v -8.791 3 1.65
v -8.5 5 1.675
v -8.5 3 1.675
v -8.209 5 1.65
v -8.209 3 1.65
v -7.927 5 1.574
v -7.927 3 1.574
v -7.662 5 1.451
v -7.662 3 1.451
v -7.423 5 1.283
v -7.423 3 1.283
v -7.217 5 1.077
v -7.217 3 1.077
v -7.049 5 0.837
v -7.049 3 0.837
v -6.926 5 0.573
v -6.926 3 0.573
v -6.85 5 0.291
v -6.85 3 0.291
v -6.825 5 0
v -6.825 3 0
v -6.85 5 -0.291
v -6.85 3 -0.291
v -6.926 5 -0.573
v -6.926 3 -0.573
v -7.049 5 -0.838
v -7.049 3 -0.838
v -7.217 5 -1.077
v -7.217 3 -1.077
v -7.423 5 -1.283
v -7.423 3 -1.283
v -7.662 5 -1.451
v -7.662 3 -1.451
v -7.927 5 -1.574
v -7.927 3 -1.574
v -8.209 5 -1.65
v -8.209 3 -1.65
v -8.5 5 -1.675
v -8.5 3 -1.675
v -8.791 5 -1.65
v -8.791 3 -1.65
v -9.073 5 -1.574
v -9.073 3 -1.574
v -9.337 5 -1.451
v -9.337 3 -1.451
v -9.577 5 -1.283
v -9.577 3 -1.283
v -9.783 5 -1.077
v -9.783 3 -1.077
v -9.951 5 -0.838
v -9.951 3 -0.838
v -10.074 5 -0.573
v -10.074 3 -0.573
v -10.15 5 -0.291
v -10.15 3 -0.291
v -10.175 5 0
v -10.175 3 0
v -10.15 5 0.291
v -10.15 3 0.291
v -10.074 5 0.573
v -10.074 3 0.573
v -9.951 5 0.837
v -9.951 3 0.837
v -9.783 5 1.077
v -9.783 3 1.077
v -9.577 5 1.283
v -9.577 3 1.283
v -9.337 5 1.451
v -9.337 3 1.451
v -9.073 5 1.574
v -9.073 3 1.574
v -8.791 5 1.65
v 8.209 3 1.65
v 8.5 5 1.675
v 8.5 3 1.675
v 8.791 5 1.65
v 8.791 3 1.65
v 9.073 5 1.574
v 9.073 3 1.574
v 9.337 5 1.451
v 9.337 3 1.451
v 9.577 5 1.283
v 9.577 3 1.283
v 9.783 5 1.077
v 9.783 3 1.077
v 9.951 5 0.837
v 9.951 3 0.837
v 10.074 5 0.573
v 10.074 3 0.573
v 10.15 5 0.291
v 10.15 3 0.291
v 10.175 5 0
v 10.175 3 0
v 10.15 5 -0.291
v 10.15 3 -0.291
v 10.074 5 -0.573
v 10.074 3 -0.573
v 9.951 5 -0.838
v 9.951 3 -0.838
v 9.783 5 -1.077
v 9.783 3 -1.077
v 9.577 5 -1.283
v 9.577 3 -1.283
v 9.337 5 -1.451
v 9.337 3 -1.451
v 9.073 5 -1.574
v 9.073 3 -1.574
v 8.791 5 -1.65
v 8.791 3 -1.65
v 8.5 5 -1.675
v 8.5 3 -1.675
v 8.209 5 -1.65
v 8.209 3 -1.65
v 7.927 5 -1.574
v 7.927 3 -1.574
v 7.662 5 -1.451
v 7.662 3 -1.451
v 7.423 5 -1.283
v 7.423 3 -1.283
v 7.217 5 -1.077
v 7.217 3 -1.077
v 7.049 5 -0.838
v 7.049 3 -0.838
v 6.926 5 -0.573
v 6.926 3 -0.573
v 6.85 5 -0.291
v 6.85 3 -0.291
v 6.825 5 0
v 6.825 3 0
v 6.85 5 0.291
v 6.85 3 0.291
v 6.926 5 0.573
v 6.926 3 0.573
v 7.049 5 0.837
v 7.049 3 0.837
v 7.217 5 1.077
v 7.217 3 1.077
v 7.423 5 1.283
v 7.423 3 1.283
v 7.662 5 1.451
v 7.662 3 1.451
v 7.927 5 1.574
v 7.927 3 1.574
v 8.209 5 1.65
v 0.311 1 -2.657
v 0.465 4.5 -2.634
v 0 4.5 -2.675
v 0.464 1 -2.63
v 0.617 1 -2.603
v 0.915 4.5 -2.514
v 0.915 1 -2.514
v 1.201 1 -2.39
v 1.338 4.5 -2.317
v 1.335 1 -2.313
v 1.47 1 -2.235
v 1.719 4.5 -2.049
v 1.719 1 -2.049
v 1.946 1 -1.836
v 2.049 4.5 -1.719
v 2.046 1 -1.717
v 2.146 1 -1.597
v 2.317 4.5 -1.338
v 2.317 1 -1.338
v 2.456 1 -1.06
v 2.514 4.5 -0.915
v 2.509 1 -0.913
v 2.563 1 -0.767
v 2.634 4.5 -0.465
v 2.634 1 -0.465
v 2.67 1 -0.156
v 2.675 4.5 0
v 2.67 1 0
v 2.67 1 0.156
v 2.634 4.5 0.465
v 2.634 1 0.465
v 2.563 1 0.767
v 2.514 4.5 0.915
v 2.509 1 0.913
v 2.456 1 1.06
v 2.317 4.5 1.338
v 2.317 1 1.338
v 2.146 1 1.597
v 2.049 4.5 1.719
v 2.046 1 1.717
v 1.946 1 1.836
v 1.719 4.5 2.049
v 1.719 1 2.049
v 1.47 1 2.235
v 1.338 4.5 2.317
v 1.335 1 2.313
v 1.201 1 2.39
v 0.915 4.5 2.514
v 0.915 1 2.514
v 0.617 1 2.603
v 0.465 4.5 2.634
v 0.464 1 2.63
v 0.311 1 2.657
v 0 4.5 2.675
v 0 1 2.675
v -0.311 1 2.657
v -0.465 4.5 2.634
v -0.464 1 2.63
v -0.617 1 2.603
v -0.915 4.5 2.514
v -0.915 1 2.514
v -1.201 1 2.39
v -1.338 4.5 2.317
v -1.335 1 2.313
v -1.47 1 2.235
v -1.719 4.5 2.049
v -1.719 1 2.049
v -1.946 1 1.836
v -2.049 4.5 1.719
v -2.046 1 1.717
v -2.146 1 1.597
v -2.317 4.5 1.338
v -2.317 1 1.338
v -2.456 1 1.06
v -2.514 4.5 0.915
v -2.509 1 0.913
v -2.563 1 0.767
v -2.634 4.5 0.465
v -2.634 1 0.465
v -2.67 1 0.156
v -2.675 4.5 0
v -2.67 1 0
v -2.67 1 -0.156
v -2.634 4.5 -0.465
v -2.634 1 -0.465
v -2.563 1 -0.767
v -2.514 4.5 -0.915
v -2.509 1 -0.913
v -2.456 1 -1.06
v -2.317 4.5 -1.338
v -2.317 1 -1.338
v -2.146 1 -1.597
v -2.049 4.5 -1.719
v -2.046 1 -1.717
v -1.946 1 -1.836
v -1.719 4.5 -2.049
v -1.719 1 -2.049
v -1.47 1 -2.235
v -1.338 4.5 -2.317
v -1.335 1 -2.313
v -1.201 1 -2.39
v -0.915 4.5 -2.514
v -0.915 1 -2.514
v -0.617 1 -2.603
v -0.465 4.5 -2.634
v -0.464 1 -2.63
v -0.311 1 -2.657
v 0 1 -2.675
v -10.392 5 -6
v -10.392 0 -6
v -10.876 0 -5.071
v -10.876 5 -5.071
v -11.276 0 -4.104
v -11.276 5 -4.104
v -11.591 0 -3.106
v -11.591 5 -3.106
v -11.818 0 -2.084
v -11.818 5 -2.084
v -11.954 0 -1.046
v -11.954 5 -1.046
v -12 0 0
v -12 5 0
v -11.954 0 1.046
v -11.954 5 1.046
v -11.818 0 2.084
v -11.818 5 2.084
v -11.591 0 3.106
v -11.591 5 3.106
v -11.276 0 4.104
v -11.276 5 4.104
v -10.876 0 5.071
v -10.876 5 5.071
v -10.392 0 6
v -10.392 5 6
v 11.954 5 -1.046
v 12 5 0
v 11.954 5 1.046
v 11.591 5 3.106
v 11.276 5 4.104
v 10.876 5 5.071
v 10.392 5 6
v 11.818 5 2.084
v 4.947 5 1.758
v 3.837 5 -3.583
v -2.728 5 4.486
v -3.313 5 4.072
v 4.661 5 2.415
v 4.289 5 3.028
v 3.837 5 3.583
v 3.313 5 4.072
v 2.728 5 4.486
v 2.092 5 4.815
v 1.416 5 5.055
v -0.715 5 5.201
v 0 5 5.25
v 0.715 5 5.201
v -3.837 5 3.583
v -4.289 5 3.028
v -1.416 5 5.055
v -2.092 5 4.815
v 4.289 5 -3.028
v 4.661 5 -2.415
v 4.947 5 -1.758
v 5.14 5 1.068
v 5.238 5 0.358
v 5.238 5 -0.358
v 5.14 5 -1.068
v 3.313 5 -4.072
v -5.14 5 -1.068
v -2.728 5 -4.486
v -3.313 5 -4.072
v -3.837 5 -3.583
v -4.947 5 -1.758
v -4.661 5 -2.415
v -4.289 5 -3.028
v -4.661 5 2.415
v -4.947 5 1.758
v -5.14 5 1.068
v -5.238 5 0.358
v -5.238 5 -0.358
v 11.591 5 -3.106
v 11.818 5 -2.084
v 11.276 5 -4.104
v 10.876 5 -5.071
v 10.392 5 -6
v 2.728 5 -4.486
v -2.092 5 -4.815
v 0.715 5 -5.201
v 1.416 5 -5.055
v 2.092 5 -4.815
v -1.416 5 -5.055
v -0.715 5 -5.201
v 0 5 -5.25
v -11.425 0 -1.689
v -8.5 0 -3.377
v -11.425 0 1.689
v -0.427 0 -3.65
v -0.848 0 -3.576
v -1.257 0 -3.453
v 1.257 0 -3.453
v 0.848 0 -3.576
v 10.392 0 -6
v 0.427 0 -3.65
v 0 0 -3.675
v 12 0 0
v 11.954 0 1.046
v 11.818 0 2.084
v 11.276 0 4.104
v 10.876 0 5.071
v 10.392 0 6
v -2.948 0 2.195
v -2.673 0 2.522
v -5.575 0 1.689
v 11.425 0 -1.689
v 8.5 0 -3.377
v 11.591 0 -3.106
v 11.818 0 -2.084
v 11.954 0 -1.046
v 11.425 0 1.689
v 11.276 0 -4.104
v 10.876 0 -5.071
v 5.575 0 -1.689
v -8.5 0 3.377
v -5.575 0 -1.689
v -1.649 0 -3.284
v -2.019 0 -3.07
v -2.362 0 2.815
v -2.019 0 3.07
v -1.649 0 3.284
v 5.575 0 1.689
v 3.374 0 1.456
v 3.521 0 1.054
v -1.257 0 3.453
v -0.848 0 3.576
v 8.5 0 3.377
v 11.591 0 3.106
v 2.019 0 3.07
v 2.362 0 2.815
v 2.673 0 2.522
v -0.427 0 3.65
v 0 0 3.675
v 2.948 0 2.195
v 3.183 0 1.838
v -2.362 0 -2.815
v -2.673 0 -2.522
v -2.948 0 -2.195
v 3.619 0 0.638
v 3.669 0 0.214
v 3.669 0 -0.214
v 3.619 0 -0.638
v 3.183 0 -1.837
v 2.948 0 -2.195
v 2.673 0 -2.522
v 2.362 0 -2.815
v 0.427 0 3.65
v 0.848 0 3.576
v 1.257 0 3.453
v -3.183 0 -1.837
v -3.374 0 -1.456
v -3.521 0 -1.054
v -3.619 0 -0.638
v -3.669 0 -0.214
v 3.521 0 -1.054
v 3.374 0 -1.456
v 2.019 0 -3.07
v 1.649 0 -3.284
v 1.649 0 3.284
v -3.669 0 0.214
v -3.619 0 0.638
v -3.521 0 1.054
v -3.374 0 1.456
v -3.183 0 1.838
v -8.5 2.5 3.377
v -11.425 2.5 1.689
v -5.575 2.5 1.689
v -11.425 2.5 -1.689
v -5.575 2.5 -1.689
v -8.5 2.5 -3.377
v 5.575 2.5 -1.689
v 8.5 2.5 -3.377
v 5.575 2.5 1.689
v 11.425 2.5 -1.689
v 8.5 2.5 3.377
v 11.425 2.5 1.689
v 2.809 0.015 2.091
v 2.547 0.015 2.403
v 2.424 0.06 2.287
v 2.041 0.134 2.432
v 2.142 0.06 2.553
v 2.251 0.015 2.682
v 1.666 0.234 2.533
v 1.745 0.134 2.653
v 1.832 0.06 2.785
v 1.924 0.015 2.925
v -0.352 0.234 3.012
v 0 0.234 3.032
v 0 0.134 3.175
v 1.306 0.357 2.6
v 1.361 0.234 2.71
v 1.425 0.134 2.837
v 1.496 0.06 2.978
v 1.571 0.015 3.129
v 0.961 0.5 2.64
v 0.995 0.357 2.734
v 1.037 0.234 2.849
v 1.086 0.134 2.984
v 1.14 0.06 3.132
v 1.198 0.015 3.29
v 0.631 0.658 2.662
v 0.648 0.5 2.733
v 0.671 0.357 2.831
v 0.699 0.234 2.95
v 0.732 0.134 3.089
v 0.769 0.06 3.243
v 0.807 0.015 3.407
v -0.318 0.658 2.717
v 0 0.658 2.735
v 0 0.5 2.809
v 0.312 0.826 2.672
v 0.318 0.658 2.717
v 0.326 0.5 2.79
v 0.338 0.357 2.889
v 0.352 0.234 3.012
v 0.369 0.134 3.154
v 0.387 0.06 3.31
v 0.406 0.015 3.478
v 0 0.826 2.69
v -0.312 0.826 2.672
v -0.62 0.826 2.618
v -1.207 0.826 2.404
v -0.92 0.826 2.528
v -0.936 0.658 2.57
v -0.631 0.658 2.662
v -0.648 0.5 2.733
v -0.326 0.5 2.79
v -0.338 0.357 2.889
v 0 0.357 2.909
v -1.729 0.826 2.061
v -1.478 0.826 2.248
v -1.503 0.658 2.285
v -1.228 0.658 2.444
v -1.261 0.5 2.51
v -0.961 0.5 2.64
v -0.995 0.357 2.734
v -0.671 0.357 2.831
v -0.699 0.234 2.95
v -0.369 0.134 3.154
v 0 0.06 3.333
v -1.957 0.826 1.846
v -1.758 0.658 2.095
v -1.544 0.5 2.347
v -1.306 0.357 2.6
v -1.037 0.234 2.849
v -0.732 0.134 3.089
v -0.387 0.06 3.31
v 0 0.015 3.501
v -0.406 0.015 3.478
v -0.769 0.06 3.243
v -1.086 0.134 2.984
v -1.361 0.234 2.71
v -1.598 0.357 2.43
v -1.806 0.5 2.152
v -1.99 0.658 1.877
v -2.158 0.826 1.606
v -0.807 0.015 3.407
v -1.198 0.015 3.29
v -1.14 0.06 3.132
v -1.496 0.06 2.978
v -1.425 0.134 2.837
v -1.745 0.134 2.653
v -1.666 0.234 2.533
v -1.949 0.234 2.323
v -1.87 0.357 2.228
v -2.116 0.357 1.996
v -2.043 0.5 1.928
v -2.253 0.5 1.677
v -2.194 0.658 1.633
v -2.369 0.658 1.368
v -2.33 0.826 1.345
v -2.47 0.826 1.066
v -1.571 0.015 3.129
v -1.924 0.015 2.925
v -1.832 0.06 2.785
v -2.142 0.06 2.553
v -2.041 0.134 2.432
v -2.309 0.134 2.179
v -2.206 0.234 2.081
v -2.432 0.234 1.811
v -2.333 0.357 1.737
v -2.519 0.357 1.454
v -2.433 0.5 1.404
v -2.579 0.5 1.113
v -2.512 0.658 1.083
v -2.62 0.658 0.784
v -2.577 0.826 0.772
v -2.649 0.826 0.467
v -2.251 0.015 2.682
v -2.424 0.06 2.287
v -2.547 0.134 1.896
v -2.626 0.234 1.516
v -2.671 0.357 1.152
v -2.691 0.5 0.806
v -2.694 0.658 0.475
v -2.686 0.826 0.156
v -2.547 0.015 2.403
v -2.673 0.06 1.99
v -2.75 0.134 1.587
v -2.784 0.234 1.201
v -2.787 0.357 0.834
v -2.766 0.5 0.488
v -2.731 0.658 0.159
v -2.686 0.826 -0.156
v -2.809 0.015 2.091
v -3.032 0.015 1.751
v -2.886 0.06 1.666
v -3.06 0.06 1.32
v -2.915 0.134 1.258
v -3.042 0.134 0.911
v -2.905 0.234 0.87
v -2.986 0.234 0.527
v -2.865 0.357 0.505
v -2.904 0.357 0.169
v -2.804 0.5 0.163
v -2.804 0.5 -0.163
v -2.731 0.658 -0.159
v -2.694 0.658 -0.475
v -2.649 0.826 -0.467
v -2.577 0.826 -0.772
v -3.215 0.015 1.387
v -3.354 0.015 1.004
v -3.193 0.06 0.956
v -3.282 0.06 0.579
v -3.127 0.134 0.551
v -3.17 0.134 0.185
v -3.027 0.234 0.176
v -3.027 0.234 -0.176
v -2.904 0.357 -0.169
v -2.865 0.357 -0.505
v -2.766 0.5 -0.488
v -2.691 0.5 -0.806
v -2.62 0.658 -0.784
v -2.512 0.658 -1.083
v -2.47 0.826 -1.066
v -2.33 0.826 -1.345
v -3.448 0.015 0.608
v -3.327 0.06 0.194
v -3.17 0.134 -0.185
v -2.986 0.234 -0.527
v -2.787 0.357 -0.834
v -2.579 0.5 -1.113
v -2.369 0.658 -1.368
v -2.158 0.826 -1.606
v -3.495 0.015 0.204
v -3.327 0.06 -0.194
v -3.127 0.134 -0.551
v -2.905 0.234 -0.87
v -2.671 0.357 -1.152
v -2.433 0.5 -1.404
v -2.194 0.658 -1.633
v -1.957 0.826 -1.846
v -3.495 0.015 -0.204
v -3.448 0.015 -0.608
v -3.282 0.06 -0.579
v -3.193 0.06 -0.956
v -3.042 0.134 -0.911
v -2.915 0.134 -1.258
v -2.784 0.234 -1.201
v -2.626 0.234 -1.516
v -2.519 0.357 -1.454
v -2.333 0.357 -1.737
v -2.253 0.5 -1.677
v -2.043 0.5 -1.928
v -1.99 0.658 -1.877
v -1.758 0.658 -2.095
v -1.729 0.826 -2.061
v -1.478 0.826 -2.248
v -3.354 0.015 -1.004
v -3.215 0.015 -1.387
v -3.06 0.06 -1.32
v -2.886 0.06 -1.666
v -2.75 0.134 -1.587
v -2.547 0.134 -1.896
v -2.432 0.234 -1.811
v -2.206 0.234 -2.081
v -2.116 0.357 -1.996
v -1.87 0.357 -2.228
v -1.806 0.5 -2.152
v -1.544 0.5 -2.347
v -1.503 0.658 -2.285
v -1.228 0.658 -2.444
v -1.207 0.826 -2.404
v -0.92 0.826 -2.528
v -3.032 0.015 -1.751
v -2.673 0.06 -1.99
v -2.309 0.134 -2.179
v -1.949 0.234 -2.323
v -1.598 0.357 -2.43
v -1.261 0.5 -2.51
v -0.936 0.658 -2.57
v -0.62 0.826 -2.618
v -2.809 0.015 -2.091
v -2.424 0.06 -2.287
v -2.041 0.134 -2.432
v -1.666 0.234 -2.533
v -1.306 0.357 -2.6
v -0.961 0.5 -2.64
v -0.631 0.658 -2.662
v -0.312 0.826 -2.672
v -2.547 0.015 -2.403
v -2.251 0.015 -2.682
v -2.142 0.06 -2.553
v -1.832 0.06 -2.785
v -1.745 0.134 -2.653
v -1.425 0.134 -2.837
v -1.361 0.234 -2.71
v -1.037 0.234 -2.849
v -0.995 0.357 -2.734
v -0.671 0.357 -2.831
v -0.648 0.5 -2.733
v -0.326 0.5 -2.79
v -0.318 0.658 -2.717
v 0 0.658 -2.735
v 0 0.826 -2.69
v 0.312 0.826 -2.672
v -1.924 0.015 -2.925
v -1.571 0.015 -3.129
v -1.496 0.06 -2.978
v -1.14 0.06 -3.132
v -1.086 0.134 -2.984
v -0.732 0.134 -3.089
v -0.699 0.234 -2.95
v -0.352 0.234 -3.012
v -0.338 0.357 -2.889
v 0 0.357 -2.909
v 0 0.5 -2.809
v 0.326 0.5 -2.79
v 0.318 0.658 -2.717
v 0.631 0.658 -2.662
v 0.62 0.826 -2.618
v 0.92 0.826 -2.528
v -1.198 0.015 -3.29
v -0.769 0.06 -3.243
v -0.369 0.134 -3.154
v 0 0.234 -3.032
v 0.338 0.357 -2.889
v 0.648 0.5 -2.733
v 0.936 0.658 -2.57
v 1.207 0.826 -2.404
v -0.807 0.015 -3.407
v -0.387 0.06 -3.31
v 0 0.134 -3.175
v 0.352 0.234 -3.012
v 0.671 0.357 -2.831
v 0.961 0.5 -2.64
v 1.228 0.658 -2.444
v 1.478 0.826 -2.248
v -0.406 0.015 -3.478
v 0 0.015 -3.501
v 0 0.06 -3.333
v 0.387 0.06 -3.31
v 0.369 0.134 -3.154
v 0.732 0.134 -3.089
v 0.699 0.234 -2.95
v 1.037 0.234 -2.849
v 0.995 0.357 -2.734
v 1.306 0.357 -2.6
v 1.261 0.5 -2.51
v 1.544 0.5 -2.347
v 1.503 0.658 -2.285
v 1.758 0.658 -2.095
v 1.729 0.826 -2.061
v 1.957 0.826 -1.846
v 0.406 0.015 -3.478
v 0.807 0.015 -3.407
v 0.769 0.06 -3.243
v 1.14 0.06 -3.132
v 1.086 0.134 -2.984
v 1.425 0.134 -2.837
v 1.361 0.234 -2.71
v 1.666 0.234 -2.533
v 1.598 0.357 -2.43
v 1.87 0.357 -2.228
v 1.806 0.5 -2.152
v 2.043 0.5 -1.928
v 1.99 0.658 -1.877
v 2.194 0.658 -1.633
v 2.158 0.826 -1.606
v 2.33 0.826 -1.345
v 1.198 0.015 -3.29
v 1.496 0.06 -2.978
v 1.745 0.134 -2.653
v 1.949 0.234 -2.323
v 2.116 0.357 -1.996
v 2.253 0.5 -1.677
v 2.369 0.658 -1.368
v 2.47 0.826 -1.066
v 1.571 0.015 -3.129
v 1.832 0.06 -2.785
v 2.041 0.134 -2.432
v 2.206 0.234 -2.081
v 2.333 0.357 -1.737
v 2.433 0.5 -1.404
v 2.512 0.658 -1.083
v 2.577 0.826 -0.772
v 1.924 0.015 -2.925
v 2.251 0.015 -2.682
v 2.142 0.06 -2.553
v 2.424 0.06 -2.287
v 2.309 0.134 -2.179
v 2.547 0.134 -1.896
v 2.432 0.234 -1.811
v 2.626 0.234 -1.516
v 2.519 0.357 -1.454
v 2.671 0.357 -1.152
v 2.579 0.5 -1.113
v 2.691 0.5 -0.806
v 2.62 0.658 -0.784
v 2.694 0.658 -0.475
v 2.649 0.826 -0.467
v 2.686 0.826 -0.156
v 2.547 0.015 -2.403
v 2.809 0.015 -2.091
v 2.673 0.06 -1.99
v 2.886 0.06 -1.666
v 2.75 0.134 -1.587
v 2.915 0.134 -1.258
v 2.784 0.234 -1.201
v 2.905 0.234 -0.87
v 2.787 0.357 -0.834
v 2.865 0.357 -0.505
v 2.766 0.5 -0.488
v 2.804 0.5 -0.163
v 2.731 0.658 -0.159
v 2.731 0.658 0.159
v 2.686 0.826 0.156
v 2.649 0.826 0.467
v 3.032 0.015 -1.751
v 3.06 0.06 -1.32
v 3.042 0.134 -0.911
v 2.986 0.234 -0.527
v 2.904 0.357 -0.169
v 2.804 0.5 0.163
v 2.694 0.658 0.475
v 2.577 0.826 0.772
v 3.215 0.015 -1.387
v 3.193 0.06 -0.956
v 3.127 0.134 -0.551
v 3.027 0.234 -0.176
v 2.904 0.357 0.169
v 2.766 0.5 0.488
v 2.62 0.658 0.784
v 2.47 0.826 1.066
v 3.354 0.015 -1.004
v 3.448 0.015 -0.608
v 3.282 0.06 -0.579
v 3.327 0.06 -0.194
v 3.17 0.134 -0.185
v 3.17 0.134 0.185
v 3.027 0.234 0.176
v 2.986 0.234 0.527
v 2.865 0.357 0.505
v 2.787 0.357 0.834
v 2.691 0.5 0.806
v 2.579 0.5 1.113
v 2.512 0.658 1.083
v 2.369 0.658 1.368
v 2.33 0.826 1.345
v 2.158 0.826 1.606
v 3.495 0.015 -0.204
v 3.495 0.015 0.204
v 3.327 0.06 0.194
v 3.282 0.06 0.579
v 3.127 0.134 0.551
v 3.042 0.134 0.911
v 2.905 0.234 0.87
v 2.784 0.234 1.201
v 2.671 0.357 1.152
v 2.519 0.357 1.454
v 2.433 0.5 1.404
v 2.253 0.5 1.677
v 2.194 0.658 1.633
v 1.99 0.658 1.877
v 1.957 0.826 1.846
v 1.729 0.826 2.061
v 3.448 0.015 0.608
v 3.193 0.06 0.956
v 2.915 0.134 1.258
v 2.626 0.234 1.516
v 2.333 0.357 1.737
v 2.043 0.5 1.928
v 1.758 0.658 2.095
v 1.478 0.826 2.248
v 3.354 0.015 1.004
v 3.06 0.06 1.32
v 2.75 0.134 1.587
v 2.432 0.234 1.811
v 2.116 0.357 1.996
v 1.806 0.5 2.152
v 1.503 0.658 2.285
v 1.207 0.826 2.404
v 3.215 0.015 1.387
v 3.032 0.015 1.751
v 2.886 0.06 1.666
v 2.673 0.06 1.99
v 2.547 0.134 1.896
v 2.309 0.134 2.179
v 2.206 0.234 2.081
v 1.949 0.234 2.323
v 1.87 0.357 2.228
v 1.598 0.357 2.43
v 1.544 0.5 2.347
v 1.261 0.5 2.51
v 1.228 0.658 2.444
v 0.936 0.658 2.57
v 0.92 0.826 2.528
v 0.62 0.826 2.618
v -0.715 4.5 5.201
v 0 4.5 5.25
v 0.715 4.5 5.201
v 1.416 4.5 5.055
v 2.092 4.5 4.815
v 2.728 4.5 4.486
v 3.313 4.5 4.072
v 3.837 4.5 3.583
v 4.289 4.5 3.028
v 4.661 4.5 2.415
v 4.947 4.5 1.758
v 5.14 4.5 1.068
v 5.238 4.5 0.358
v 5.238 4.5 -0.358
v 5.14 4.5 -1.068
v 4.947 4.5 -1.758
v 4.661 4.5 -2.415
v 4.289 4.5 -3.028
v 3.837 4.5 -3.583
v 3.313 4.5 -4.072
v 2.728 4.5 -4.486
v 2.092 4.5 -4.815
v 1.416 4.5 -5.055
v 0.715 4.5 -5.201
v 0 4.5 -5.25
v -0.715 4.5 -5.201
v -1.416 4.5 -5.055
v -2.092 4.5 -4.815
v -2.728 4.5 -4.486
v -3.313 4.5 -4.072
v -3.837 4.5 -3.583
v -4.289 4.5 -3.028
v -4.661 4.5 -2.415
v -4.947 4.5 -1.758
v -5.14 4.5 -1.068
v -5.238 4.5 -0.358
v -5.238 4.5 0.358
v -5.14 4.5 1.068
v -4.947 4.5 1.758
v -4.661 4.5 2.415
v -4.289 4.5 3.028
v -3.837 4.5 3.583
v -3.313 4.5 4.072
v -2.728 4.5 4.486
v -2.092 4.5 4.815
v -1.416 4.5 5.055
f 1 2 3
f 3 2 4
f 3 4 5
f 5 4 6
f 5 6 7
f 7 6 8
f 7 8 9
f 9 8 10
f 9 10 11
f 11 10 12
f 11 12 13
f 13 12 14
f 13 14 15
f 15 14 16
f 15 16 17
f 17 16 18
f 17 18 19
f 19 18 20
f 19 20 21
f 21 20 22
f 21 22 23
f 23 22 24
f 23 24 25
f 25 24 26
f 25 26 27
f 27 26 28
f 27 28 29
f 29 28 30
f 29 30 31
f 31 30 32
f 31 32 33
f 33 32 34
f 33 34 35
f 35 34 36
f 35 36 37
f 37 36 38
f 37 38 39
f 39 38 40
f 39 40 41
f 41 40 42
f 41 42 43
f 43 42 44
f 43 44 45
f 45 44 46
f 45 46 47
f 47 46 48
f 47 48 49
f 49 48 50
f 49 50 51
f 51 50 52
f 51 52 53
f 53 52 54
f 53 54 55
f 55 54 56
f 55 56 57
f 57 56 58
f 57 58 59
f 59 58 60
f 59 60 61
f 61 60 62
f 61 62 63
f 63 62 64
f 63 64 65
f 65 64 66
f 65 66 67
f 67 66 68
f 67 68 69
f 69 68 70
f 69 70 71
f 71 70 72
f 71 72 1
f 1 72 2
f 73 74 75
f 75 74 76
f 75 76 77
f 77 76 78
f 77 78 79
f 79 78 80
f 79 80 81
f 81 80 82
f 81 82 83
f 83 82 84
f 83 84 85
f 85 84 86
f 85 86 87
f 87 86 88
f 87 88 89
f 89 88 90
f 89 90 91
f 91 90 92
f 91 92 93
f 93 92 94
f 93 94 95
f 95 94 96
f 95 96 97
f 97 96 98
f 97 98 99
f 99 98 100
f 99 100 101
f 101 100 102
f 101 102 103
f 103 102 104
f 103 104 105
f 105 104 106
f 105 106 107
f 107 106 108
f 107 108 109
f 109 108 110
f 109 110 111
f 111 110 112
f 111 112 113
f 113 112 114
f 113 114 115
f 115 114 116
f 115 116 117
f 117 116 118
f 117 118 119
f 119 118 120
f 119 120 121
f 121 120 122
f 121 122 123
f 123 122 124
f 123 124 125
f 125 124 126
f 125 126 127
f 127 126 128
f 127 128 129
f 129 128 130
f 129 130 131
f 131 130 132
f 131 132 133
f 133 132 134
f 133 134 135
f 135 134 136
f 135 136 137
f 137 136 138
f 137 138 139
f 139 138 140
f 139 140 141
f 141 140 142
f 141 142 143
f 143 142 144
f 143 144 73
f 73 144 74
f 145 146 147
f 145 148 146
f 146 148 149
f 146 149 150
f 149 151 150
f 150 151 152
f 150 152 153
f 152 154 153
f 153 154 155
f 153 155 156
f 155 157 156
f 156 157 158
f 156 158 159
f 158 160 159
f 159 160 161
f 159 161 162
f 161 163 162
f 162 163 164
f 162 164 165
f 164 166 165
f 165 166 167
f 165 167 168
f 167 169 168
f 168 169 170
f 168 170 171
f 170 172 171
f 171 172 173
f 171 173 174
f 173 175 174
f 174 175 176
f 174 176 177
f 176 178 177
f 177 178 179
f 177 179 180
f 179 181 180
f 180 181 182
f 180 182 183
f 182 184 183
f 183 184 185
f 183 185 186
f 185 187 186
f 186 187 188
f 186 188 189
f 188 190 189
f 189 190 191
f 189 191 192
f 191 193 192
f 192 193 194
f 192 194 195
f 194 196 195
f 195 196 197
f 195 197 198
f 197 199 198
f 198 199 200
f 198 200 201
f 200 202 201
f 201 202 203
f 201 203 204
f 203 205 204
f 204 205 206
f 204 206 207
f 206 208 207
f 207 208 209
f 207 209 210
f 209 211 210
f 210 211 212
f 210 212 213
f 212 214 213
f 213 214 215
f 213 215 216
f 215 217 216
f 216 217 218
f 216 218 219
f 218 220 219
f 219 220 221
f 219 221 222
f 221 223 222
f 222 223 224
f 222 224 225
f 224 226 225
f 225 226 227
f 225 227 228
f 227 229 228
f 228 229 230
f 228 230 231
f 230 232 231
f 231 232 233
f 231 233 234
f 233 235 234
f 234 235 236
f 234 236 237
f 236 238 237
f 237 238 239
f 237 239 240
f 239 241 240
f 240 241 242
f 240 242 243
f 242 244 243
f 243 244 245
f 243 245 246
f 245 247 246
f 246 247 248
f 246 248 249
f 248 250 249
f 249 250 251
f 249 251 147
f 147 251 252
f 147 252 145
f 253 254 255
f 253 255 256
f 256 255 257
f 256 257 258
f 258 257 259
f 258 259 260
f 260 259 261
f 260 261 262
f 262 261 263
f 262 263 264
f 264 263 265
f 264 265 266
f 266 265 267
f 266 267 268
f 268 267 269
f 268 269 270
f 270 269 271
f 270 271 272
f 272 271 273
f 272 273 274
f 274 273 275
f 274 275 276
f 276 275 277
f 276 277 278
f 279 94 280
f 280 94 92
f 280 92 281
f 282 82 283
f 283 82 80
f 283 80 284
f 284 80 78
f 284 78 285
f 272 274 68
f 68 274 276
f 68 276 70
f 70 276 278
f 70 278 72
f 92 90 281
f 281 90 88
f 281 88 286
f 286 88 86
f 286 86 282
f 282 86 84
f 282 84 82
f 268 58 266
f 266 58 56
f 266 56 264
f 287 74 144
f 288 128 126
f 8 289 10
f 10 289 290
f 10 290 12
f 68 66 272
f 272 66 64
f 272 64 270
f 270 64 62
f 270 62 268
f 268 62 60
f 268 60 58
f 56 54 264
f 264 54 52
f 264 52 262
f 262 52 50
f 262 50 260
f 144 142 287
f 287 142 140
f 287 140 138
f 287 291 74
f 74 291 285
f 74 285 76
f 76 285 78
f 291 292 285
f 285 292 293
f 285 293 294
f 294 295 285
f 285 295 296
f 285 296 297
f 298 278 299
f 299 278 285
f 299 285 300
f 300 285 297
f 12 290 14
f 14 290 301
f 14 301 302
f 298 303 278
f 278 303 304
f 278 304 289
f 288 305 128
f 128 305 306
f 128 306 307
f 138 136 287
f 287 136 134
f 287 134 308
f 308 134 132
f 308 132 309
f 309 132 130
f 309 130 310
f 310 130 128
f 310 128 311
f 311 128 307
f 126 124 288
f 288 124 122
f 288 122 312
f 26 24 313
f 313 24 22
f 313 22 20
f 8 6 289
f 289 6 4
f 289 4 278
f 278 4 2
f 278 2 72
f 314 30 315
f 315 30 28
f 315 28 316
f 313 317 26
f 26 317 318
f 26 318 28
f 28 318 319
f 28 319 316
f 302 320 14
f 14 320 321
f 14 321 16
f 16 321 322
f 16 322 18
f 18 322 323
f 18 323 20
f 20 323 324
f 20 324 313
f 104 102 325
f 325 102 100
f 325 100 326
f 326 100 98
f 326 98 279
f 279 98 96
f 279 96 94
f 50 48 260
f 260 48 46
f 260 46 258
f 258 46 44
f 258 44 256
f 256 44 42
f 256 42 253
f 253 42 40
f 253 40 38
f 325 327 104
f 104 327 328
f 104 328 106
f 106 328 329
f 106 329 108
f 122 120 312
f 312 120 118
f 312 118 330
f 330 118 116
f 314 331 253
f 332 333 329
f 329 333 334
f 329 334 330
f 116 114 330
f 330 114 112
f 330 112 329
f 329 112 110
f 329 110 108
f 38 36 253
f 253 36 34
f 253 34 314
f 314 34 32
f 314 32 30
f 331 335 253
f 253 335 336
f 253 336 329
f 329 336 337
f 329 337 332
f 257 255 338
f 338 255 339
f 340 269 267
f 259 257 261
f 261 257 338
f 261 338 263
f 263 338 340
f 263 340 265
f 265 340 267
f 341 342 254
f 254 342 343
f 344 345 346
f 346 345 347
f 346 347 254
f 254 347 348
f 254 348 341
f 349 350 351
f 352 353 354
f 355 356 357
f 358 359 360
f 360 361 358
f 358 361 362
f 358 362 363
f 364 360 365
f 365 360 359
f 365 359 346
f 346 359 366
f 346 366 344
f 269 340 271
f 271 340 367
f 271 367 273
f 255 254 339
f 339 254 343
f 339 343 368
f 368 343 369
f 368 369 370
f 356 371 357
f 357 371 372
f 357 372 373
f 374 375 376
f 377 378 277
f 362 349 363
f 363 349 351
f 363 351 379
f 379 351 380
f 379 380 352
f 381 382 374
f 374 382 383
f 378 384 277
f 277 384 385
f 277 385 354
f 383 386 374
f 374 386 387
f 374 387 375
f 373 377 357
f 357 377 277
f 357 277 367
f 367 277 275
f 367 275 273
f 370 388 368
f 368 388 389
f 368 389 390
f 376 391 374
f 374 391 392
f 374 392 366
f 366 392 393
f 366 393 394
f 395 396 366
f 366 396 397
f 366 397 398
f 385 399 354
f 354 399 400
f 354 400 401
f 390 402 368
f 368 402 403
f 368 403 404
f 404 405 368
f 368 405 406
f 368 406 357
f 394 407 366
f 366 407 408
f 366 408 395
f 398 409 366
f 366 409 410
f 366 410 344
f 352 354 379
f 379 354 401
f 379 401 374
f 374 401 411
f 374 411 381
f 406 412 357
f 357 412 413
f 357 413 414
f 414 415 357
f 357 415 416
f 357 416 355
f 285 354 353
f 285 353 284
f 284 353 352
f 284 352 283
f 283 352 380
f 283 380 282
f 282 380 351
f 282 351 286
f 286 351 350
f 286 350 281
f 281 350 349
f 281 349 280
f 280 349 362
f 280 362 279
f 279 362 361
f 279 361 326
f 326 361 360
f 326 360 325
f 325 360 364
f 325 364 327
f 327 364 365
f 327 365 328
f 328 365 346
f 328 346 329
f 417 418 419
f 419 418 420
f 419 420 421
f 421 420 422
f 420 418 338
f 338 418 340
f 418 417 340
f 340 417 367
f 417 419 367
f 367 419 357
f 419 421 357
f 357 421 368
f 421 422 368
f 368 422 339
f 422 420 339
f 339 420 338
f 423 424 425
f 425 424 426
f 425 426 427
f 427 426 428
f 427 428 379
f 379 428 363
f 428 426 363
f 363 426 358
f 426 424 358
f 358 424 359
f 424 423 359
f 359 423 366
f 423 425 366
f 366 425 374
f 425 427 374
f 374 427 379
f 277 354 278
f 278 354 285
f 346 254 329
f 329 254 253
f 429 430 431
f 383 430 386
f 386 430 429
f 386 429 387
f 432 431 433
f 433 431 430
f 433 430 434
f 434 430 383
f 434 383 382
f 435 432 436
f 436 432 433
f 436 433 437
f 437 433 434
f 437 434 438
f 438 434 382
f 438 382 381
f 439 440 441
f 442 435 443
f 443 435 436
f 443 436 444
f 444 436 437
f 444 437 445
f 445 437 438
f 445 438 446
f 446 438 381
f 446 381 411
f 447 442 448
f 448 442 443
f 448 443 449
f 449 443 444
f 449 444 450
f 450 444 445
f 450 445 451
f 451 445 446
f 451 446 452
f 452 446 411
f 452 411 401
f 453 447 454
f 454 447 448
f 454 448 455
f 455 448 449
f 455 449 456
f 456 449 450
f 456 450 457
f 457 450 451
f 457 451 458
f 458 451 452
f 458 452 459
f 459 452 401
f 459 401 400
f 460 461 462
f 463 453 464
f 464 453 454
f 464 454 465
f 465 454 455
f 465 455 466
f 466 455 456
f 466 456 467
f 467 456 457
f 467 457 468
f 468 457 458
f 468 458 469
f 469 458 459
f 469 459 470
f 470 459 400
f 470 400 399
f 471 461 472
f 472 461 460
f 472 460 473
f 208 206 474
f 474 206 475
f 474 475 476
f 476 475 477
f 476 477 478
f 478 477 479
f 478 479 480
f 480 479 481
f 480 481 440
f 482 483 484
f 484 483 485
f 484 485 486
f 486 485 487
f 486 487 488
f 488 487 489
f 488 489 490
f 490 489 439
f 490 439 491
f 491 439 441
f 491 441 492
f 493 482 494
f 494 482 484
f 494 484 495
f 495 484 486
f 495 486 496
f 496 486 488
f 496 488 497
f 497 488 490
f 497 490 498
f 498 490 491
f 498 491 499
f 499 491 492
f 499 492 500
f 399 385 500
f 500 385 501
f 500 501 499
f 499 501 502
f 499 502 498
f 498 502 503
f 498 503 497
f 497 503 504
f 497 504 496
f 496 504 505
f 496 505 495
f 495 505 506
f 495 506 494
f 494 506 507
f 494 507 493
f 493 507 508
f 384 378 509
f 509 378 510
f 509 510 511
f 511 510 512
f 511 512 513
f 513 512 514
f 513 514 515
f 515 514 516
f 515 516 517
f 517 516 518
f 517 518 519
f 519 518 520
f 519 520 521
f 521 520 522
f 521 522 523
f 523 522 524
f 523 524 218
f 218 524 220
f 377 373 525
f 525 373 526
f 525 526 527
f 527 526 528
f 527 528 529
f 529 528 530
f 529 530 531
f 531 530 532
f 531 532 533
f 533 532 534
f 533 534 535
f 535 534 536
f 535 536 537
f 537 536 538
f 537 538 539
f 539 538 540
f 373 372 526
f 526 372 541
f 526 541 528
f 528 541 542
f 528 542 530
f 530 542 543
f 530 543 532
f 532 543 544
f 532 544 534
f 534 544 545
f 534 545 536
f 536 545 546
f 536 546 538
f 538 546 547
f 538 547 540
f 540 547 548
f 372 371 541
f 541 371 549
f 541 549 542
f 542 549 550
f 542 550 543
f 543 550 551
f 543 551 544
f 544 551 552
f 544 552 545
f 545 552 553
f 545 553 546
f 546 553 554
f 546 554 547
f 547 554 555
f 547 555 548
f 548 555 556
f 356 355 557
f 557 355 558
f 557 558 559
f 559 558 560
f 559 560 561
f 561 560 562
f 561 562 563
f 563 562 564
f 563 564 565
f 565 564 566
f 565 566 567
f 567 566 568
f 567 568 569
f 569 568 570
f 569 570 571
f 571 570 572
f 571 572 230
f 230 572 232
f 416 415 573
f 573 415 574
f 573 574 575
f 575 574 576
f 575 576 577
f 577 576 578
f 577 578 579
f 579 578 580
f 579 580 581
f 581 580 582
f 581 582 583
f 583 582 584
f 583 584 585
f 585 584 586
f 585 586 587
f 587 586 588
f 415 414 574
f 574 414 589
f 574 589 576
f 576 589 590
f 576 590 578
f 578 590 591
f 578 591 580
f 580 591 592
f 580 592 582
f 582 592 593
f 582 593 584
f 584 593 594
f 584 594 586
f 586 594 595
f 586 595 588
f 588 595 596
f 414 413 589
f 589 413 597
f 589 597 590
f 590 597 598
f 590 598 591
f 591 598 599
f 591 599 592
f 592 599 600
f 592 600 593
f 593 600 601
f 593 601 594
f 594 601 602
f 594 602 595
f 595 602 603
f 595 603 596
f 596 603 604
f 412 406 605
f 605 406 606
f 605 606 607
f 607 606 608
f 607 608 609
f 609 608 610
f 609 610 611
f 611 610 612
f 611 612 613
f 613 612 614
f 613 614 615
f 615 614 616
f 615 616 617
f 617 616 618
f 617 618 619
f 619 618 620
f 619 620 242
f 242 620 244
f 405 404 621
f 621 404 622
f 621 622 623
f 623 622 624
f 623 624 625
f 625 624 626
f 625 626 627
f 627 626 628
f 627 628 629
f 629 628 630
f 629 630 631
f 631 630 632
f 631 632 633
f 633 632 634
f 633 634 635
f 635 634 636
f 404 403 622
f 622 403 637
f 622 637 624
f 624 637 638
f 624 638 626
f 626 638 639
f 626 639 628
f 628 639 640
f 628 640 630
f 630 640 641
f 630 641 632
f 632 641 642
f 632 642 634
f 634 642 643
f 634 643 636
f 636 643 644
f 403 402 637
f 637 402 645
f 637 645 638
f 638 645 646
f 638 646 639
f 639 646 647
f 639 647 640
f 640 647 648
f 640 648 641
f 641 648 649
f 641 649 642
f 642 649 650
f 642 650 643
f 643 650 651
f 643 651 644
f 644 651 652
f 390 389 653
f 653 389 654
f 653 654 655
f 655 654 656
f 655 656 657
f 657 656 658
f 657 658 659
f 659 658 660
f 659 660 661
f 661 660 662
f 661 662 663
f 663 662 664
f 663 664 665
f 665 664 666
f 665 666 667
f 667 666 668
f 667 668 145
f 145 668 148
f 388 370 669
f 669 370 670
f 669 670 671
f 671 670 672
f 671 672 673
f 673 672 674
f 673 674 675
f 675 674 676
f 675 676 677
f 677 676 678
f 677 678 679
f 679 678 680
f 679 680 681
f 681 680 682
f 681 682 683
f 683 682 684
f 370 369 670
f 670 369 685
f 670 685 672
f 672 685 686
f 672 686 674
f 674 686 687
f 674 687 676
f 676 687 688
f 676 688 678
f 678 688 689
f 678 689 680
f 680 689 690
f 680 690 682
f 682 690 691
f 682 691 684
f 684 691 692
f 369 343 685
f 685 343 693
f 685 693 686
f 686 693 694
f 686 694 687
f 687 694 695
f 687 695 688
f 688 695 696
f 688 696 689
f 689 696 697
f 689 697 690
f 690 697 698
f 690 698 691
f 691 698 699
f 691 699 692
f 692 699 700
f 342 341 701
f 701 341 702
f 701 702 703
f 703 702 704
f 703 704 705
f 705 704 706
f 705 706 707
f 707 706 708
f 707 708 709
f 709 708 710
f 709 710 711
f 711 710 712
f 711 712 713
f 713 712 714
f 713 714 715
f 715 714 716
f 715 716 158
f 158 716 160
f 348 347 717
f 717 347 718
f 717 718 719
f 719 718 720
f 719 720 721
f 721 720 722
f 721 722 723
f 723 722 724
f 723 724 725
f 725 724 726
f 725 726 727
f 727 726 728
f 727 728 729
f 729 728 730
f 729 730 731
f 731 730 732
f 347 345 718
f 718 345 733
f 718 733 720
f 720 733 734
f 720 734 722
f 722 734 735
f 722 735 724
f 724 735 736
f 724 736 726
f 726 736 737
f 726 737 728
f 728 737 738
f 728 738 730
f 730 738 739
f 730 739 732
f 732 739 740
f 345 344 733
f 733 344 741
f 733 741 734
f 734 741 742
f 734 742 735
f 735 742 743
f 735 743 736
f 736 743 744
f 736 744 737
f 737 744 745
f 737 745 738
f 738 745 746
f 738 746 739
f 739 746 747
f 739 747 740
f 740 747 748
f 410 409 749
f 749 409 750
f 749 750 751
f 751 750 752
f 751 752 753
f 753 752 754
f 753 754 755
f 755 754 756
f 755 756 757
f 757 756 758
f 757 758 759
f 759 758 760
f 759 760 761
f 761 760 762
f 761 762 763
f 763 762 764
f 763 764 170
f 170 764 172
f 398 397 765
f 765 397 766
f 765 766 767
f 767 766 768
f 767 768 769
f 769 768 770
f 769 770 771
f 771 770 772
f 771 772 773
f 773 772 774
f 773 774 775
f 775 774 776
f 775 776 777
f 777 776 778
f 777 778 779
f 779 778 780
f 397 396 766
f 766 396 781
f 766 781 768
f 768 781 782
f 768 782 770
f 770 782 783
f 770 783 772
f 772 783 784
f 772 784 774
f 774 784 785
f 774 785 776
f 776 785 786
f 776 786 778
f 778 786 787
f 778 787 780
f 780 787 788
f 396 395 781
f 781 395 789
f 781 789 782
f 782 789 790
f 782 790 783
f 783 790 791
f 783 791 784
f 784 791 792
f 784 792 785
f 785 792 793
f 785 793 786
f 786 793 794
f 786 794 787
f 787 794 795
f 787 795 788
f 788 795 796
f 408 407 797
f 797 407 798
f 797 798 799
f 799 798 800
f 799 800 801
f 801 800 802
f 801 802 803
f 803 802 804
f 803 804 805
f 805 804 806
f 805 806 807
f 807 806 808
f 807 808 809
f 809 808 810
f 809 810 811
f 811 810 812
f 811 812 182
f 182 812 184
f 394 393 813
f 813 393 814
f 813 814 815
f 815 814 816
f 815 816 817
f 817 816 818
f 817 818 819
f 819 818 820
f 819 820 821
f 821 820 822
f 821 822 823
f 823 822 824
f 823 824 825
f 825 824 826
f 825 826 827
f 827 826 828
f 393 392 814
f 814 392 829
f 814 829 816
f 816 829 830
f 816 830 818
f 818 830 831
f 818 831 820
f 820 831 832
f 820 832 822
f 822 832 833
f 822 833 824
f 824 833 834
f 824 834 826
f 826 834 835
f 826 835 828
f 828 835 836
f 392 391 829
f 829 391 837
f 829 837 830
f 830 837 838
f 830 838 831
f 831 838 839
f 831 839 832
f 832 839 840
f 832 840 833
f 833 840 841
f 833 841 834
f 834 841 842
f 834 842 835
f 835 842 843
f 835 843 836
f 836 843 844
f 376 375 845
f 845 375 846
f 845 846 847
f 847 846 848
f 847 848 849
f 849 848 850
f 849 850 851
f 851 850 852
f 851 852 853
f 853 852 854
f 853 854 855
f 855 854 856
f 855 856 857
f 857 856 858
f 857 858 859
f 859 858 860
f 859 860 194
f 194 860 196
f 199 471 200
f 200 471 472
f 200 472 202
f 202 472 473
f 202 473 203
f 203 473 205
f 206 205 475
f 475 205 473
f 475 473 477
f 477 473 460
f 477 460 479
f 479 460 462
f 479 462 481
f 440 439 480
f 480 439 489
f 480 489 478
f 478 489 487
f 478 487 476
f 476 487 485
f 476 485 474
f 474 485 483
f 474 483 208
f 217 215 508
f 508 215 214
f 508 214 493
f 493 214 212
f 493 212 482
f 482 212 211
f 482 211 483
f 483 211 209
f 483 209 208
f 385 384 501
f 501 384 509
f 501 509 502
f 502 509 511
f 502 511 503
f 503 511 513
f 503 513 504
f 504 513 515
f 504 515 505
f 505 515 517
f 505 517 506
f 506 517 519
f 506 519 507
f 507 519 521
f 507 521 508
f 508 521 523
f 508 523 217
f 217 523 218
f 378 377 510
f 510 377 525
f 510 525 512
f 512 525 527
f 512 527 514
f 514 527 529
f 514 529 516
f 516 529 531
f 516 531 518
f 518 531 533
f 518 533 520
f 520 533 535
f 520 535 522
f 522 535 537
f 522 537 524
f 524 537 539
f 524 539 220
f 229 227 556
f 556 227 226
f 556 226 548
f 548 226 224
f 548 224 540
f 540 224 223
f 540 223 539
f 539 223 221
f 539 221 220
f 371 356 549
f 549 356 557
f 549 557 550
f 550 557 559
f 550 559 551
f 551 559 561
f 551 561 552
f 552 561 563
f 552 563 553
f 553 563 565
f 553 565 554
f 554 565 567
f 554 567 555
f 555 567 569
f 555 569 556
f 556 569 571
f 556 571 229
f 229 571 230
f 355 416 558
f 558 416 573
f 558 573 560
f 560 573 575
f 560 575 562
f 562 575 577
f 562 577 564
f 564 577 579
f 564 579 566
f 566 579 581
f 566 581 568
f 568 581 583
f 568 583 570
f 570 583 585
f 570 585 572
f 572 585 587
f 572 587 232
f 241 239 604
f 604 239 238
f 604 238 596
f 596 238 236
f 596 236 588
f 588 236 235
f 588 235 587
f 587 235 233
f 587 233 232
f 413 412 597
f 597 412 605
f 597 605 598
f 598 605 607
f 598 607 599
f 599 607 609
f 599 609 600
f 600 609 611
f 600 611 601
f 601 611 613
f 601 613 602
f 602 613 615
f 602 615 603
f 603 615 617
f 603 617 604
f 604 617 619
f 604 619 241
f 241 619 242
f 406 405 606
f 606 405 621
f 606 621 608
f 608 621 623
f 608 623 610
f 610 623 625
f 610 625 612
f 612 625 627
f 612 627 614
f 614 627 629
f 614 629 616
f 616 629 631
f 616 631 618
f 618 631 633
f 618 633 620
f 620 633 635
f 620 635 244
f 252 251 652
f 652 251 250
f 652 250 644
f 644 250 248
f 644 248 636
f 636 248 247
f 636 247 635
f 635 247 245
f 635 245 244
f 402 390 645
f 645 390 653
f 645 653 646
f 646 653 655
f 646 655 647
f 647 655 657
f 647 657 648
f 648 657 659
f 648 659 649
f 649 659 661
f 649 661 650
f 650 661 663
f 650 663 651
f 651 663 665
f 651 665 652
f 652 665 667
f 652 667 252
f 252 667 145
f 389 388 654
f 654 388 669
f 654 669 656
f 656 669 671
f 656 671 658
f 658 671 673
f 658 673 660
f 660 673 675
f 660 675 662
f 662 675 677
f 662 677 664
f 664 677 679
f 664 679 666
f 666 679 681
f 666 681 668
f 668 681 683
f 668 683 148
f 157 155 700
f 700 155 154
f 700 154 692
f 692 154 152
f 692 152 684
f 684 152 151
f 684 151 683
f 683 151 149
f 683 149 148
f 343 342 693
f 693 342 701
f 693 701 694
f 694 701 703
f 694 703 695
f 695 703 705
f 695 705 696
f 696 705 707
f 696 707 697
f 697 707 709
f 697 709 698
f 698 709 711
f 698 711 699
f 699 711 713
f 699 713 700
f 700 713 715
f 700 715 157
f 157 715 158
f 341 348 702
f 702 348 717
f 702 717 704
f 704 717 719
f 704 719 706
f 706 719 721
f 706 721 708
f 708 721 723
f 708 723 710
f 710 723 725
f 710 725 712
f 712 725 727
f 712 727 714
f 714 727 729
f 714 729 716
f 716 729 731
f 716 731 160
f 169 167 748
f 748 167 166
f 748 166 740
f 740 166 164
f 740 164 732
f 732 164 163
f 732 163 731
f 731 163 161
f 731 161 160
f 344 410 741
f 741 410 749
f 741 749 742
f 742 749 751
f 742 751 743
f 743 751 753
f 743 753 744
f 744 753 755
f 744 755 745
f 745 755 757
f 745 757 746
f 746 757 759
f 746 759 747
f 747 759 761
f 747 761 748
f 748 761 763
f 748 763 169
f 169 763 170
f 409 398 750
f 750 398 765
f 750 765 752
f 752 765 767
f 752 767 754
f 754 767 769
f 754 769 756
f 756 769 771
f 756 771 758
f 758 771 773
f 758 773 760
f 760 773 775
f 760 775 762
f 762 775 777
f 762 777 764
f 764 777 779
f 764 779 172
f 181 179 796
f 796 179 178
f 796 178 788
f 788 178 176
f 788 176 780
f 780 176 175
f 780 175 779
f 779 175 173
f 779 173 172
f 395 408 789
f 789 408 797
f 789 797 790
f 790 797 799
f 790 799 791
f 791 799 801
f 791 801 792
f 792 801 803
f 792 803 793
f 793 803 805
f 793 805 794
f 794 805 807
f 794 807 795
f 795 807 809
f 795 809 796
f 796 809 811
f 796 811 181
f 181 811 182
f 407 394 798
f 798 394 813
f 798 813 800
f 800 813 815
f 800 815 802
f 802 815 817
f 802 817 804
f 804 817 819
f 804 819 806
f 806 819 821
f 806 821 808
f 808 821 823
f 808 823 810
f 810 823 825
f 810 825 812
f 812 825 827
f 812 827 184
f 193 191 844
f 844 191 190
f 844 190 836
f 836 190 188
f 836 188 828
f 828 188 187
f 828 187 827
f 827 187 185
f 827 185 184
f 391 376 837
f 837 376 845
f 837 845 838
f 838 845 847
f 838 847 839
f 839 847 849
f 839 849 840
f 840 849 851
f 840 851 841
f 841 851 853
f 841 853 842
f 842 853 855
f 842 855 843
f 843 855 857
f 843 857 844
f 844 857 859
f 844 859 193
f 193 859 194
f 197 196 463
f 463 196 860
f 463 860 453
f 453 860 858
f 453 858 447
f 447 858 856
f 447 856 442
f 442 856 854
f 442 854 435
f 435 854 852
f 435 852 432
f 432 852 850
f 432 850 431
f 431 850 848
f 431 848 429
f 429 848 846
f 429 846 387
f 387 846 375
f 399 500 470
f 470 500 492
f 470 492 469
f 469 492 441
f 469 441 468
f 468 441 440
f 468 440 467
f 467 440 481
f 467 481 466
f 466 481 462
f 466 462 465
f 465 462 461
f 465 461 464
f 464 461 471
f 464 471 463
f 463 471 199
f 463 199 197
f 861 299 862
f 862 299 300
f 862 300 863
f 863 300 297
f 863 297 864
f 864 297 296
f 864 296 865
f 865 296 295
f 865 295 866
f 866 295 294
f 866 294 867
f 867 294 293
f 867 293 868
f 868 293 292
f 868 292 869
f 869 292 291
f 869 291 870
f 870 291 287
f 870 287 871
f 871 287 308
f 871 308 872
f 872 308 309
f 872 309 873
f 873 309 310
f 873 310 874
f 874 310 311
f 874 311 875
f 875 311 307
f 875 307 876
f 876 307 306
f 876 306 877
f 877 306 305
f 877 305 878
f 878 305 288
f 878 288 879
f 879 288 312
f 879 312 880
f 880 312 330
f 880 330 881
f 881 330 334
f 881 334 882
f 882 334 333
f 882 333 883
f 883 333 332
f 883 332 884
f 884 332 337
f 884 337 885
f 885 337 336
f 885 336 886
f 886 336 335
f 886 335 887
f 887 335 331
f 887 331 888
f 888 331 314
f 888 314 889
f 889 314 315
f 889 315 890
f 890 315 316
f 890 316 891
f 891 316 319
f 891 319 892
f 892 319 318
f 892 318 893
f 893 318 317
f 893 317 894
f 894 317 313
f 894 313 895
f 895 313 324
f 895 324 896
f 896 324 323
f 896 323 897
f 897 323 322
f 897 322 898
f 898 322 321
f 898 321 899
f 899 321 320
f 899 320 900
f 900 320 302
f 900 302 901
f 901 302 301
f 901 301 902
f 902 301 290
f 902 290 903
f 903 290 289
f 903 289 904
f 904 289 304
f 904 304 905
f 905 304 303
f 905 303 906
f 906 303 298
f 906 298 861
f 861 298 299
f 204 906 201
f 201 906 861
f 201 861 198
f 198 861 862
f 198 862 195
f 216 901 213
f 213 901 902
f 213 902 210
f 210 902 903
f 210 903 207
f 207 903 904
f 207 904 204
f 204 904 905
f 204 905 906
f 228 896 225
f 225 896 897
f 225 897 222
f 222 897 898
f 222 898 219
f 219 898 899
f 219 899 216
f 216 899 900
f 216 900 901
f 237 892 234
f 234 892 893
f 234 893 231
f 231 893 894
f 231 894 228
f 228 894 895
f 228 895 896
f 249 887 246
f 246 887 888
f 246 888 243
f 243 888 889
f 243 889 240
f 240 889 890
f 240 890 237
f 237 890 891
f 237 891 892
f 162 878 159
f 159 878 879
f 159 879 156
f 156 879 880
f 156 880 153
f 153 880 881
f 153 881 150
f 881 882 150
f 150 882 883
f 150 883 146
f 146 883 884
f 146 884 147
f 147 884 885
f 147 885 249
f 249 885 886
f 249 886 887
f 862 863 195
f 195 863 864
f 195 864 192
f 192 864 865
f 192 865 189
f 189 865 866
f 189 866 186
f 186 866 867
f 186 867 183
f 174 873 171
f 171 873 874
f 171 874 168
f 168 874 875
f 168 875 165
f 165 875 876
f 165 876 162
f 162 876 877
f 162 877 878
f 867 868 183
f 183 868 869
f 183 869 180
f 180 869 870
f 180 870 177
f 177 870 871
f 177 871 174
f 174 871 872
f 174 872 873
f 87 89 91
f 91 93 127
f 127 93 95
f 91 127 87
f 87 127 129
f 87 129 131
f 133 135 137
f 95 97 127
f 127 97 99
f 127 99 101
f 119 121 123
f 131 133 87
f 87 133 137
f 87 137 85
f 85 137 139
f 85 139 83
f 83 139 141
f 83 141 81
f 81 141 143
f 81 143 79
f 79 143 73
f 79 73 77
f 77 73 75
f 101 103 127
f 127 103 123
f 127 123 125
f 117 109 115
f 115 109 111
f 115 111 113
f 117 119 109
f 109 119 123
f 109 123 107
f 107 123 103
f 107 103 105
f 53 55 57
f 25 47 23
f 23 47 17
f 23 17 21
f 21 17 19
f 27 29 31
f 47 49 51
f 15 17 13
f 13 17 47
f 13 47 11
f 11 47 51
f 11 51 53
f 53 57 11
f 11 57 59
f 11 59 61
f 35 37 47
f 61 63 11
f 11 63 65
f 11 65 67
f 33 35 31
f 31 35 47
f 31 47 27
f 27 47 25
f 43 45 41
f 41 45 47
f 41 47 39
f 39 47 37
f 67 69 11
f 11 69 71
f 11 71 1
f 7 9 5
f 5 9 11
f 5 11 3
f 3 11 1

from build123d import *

# Parameters (mm, degrees)
SKETCH1_R           = 12
SKETCH1_R_2         = 2.675
BOSS_EXTRUDE1_DEPTH = 5
SKETCH3_R           = 1.675
CUT_EXTRUDE1_DEPTH  = 6
CUT_EXTRUDE2_DEPTH  = 2.5
CUT_EXTRUDE4_DEPTH  = 10
FILLET1_R           = 1
SKETCH7_R           = 5.25
CUT_EXTRUDE5_DEPTH  = 0.5
SKETCH8_R           = 1.675
BOSS_EXTRUDE2_DEPTH = 0.5


with BuildPart() as part:
    # Sketch1 → Boss-Extrude1 (new body)
    with BuildSketch(Plane(origin=(0, 0, 0), x_dir=(1, 0, 0), z_dir=(0, 1, 0))):
        Circle(SKETCH1_R)
        Circle(SKETCH1_R_2, mode=Mode.SUBTRACT)
    extrude(amount=BOSS_EXTRUDE1_DEPTH)

    # Sketch3 → Cut-Extrude1 (cut)
    with BuildSketch(Plane(origin=(0, 5, 0), x_dir=(1, 0, 0), z_dir=(0, 1, 0))):
        with Locations((-8.5, 0)):
            Circle(SKETCH3_R)
        with Locations((8.5, 0)):
            Circle(SKETCH3_R)
    extrude(amount=-CUT_EXTRUDE1_DEPTH, mode=Mode.SUBTRACT)

    # Sketch4 → Cut-Extrude2 (cut)
    with BuildSketch(Plane.XZ):
        Polygon((-11.425, -1.688749537), (-8.5, -3.377499075), (-5.575, -1.688749537), (-5.575, 1.688749537), (-8.5, 3.377499075), (-11.425, 1.688749537), align=None)
        Polygon((11.425, 1.688749537), (11.425, -1.688749537), (8.5, -3.377499075), (5.575, -1.688749537), (5.575, 1.688749537), (8.5, 3.377499075), align=None)
    extrude(amount=-CUT_EXTRUDE2_DEPTH, mode=Mode.SUBTRACT)

    # Sketch6 → Cut-Extrude4 (cut)
    with BuildSketch(Plane.XZ):
        with BuildLine():
            Line((-10.392304845, 6), (10.392304845, 6))
            ThreePointArc((10.392304845, 6), (0, 12), (-10.392304845, 6))
        make_face()
        with BuildLine():
            Line((-10.392304845, -6), (10.392304845, -6))
            ThreePointArc((10.392304845, -6), (0, -12), (-10.392304845, -6))
        make_face()
    extrude(amount=-CUT_EXTRUDE4_DEPTH, mode=Mode.SUBTRACT)

    # Fillet1
    fillet1_edges = [part.edges().sort_by_distance(p)[0] for p in [
        (-2.675, 0, 0),
    ]]
    fillet(fillet1_edges, radius=FILLET1_R)

    # Sketch7 → Cut-Extrude5 (cut)
    with BuildSketch(Plane(origin=(0, 5, 0), x_dir=(1, 0, 0), z_dir=(0, 1, 0))):
        Circle(SKETCH7_R)
    extrude(amount=-CUT_EXTRUDE5_DEPTH, mode=Mode.SUBTRACT)

    # Sketch8 → Boss-Extrude2 (add)
    with BuildSketch(Plane.XZ.offset(-2.5)):
        with Locations((8.5, 0)):
            Circle(SKETCH8_R)
        with Locations((-8.5, 0)):
            Circle(SKETCH8_R)
    extrude(amount=-BOSS_EXTRUDE2_DEPTH)


solid = part.part
